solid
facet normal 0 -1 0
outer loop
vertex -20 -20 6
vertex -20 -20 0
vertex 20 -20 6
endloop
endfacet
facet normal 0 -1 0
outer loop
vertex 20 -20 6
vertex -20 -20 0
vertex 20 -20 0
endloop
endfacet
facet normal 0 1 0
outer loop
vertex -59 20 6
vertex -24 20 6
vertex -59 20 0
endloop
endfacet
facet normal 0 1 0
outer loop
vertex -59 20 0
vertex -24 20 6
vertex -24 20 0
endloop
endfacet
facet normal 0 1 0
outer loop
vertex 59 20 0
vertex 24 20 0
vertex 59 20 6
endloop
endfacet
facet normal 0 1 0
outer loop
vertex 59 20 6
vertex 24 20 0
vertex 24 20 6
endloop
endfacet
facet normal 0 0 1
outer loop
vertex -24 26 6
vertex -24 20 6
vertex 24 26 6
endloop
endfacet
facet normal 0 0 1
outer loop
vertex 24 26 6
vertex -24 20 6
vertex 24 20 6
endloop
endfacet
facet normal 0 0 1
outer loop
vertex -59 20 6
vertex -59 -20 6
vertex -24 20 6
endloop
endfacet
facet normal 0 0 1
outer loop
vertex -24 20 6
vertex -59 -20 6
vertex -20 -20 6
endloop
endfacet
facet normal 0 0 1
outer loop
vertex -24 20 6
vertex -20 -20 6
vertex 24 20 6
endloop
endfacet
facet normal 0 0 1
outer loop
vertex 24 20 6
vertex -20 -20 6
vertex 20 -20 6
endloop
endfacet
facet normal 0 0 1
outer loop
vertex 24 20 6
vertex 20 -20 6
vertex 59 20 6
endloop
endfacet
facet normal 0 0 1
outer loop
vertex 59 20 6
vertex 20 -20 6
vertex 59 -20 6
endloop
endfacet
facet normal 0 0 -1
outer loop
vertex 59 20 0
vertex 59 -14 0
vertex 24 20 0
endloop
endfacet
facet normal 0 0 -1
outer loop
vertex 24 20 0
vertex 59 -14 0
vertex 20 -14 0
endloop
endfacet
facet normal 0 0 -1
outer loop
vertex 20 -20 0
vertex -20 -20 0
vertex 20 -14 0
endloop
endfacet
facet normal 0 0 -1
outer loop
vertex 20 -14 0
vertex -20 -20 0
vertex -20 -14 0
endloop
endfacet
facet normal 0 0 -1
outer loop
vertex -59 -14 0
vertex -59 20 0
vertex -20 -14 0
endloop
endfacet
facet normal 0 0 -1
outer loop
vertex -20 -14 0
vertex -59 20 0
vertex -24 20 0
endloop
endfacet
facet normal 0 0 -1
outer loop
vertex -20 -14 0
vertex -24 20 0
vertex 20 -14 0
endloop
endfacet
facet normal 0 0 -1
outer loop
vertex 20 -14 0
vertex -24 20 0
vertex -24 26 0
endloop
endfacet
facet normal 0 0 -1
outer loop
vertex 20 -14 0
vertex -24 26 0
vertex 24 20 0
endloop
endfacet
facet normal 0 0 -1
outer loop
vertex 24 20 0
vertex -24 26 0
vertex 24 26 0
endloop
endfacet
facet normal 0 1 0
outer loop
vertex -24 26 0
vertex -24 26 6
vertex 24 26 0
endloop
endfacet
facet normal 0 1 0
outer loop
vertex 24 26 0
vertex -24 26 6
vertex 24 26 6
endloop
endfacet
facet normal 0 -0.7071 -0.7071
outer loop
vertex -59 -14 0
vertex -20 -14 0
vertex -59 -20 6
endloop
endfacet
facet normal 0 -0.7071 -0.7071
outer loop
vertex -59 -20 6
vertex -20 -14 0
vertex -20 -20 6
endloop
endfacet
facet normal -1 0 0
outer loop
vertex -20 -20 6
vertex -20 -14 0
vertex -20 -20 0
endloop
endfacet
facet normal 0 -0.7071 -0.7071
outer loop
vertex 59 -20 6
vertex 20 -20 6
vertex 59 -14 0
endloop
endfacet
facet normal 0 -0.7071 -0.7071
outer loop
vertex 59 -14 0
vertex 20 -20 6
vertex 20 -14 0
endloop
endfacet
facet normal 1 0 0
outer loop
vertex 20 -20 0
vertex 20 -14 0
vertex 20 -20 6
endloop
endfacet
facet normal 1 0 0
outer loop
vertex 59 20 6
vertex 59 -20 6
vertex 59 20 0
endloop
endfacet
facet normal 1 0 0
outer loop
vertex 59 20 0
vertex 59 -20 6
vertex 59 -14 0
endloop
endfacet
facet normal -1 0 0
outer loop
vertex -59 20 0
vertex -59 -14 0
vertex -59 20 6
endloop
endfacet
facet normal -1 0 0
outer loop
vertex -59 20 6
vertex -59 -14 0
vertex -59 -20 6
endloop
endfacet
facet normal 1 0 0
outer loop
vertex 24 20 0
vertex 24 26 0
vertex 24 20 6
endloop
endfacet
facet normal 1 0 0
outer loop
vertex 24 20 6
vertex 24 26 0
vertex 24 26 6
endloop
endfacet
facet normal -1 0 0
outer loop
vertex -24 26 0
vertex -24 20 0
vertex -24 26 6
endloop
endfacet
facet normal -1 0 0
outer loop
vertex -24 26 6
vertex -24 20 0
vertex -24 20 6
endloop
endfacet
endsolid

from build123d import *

# Parameters (mm, degrees)
ESQUISSE1_W        = 120
ESQUISSE1_H        = 40
BOSS_EXTRU_1_DEPTH = 6
ESQUISSE2_W        = 50
ESQUISSE2_H        = 6
BOSS_EXTRU_2_DEPTH = 6
CUT_EXTRUDE1_DEPTH = 40
CUT_EXTRUDE2_DEPTH = 40
SKETCH3_W          = 1
SKETCH3_H          = 40
SKETCH3_H_2        = 6
CUT_EXTRUDE3_DEPTH = 7


with BuildPart() as part:
    # Esquisse1 → Boss.-Extru.1 (new body)
    with BuildSketch(Plane.XY):
        Rectangle(ESQUISSE1_W, ESQUISSE1_H)
    extrude(amount=BOSS_EXTRU_1_DEPTH)

    # Esquisse2 → Boss.-Extru.2 (add)
    with BuildSketch(Plane.XY.offset(6)):
        with Locations((0, 23)):
            Rectangle(ESQUISSE2_W, ESQUISSE2_H)
    extrude(amount=-BOSS_EXTRU_2_DEPTH)

    # Sketch1 → Cut-Extrude1 (cut)
    with BuildSketch(Plane.ZY.offset(60)):
        Polygon((6, -20), (0, -14), (0, -20), align=None)
    extrude(amount=-CUT_EXTRUDE1_DEPTH, mode=Mode.SUBTRACT)

    # Sketch2 → Cut-Extrude2 (cut)
    with BuildSketch(Plane(origin=(60, 0, 0), x_dir=(0, 0, -1), z_dir=(1, 0, 0))):
        Polygon((-6, -20), (0, -14), (0, -20), align=None)
    extrude(amount=-CUT_EXTRUDE2_DEPTH, mode=Mode.SUBTRACT)

    # Sketch3 → Cut-Extrude3 (cut, through all)
    with BuildSketch(Plane.XY.offset(6)):
        with Locations((59.5, 0)):
            Rectangle(SKETCH3_W, SKETCH3_H)
        with Locations((24.5, 23)):
            Rectangle(SKETCH3_W, SKETCH3_H_2)
        with Locations((-24.5, 23)):
            Rectangle(SKETCH3_W, SKETCH3_H_2)
        with Locations((-59.5, 0)):
            Rectangle(SKETCH3_W, SKETCH3_H)
    extrude(amount=-CUT_EXTRUDE3_DEPTH, mode=Mode.SUBTRACT)


solid = part.part
